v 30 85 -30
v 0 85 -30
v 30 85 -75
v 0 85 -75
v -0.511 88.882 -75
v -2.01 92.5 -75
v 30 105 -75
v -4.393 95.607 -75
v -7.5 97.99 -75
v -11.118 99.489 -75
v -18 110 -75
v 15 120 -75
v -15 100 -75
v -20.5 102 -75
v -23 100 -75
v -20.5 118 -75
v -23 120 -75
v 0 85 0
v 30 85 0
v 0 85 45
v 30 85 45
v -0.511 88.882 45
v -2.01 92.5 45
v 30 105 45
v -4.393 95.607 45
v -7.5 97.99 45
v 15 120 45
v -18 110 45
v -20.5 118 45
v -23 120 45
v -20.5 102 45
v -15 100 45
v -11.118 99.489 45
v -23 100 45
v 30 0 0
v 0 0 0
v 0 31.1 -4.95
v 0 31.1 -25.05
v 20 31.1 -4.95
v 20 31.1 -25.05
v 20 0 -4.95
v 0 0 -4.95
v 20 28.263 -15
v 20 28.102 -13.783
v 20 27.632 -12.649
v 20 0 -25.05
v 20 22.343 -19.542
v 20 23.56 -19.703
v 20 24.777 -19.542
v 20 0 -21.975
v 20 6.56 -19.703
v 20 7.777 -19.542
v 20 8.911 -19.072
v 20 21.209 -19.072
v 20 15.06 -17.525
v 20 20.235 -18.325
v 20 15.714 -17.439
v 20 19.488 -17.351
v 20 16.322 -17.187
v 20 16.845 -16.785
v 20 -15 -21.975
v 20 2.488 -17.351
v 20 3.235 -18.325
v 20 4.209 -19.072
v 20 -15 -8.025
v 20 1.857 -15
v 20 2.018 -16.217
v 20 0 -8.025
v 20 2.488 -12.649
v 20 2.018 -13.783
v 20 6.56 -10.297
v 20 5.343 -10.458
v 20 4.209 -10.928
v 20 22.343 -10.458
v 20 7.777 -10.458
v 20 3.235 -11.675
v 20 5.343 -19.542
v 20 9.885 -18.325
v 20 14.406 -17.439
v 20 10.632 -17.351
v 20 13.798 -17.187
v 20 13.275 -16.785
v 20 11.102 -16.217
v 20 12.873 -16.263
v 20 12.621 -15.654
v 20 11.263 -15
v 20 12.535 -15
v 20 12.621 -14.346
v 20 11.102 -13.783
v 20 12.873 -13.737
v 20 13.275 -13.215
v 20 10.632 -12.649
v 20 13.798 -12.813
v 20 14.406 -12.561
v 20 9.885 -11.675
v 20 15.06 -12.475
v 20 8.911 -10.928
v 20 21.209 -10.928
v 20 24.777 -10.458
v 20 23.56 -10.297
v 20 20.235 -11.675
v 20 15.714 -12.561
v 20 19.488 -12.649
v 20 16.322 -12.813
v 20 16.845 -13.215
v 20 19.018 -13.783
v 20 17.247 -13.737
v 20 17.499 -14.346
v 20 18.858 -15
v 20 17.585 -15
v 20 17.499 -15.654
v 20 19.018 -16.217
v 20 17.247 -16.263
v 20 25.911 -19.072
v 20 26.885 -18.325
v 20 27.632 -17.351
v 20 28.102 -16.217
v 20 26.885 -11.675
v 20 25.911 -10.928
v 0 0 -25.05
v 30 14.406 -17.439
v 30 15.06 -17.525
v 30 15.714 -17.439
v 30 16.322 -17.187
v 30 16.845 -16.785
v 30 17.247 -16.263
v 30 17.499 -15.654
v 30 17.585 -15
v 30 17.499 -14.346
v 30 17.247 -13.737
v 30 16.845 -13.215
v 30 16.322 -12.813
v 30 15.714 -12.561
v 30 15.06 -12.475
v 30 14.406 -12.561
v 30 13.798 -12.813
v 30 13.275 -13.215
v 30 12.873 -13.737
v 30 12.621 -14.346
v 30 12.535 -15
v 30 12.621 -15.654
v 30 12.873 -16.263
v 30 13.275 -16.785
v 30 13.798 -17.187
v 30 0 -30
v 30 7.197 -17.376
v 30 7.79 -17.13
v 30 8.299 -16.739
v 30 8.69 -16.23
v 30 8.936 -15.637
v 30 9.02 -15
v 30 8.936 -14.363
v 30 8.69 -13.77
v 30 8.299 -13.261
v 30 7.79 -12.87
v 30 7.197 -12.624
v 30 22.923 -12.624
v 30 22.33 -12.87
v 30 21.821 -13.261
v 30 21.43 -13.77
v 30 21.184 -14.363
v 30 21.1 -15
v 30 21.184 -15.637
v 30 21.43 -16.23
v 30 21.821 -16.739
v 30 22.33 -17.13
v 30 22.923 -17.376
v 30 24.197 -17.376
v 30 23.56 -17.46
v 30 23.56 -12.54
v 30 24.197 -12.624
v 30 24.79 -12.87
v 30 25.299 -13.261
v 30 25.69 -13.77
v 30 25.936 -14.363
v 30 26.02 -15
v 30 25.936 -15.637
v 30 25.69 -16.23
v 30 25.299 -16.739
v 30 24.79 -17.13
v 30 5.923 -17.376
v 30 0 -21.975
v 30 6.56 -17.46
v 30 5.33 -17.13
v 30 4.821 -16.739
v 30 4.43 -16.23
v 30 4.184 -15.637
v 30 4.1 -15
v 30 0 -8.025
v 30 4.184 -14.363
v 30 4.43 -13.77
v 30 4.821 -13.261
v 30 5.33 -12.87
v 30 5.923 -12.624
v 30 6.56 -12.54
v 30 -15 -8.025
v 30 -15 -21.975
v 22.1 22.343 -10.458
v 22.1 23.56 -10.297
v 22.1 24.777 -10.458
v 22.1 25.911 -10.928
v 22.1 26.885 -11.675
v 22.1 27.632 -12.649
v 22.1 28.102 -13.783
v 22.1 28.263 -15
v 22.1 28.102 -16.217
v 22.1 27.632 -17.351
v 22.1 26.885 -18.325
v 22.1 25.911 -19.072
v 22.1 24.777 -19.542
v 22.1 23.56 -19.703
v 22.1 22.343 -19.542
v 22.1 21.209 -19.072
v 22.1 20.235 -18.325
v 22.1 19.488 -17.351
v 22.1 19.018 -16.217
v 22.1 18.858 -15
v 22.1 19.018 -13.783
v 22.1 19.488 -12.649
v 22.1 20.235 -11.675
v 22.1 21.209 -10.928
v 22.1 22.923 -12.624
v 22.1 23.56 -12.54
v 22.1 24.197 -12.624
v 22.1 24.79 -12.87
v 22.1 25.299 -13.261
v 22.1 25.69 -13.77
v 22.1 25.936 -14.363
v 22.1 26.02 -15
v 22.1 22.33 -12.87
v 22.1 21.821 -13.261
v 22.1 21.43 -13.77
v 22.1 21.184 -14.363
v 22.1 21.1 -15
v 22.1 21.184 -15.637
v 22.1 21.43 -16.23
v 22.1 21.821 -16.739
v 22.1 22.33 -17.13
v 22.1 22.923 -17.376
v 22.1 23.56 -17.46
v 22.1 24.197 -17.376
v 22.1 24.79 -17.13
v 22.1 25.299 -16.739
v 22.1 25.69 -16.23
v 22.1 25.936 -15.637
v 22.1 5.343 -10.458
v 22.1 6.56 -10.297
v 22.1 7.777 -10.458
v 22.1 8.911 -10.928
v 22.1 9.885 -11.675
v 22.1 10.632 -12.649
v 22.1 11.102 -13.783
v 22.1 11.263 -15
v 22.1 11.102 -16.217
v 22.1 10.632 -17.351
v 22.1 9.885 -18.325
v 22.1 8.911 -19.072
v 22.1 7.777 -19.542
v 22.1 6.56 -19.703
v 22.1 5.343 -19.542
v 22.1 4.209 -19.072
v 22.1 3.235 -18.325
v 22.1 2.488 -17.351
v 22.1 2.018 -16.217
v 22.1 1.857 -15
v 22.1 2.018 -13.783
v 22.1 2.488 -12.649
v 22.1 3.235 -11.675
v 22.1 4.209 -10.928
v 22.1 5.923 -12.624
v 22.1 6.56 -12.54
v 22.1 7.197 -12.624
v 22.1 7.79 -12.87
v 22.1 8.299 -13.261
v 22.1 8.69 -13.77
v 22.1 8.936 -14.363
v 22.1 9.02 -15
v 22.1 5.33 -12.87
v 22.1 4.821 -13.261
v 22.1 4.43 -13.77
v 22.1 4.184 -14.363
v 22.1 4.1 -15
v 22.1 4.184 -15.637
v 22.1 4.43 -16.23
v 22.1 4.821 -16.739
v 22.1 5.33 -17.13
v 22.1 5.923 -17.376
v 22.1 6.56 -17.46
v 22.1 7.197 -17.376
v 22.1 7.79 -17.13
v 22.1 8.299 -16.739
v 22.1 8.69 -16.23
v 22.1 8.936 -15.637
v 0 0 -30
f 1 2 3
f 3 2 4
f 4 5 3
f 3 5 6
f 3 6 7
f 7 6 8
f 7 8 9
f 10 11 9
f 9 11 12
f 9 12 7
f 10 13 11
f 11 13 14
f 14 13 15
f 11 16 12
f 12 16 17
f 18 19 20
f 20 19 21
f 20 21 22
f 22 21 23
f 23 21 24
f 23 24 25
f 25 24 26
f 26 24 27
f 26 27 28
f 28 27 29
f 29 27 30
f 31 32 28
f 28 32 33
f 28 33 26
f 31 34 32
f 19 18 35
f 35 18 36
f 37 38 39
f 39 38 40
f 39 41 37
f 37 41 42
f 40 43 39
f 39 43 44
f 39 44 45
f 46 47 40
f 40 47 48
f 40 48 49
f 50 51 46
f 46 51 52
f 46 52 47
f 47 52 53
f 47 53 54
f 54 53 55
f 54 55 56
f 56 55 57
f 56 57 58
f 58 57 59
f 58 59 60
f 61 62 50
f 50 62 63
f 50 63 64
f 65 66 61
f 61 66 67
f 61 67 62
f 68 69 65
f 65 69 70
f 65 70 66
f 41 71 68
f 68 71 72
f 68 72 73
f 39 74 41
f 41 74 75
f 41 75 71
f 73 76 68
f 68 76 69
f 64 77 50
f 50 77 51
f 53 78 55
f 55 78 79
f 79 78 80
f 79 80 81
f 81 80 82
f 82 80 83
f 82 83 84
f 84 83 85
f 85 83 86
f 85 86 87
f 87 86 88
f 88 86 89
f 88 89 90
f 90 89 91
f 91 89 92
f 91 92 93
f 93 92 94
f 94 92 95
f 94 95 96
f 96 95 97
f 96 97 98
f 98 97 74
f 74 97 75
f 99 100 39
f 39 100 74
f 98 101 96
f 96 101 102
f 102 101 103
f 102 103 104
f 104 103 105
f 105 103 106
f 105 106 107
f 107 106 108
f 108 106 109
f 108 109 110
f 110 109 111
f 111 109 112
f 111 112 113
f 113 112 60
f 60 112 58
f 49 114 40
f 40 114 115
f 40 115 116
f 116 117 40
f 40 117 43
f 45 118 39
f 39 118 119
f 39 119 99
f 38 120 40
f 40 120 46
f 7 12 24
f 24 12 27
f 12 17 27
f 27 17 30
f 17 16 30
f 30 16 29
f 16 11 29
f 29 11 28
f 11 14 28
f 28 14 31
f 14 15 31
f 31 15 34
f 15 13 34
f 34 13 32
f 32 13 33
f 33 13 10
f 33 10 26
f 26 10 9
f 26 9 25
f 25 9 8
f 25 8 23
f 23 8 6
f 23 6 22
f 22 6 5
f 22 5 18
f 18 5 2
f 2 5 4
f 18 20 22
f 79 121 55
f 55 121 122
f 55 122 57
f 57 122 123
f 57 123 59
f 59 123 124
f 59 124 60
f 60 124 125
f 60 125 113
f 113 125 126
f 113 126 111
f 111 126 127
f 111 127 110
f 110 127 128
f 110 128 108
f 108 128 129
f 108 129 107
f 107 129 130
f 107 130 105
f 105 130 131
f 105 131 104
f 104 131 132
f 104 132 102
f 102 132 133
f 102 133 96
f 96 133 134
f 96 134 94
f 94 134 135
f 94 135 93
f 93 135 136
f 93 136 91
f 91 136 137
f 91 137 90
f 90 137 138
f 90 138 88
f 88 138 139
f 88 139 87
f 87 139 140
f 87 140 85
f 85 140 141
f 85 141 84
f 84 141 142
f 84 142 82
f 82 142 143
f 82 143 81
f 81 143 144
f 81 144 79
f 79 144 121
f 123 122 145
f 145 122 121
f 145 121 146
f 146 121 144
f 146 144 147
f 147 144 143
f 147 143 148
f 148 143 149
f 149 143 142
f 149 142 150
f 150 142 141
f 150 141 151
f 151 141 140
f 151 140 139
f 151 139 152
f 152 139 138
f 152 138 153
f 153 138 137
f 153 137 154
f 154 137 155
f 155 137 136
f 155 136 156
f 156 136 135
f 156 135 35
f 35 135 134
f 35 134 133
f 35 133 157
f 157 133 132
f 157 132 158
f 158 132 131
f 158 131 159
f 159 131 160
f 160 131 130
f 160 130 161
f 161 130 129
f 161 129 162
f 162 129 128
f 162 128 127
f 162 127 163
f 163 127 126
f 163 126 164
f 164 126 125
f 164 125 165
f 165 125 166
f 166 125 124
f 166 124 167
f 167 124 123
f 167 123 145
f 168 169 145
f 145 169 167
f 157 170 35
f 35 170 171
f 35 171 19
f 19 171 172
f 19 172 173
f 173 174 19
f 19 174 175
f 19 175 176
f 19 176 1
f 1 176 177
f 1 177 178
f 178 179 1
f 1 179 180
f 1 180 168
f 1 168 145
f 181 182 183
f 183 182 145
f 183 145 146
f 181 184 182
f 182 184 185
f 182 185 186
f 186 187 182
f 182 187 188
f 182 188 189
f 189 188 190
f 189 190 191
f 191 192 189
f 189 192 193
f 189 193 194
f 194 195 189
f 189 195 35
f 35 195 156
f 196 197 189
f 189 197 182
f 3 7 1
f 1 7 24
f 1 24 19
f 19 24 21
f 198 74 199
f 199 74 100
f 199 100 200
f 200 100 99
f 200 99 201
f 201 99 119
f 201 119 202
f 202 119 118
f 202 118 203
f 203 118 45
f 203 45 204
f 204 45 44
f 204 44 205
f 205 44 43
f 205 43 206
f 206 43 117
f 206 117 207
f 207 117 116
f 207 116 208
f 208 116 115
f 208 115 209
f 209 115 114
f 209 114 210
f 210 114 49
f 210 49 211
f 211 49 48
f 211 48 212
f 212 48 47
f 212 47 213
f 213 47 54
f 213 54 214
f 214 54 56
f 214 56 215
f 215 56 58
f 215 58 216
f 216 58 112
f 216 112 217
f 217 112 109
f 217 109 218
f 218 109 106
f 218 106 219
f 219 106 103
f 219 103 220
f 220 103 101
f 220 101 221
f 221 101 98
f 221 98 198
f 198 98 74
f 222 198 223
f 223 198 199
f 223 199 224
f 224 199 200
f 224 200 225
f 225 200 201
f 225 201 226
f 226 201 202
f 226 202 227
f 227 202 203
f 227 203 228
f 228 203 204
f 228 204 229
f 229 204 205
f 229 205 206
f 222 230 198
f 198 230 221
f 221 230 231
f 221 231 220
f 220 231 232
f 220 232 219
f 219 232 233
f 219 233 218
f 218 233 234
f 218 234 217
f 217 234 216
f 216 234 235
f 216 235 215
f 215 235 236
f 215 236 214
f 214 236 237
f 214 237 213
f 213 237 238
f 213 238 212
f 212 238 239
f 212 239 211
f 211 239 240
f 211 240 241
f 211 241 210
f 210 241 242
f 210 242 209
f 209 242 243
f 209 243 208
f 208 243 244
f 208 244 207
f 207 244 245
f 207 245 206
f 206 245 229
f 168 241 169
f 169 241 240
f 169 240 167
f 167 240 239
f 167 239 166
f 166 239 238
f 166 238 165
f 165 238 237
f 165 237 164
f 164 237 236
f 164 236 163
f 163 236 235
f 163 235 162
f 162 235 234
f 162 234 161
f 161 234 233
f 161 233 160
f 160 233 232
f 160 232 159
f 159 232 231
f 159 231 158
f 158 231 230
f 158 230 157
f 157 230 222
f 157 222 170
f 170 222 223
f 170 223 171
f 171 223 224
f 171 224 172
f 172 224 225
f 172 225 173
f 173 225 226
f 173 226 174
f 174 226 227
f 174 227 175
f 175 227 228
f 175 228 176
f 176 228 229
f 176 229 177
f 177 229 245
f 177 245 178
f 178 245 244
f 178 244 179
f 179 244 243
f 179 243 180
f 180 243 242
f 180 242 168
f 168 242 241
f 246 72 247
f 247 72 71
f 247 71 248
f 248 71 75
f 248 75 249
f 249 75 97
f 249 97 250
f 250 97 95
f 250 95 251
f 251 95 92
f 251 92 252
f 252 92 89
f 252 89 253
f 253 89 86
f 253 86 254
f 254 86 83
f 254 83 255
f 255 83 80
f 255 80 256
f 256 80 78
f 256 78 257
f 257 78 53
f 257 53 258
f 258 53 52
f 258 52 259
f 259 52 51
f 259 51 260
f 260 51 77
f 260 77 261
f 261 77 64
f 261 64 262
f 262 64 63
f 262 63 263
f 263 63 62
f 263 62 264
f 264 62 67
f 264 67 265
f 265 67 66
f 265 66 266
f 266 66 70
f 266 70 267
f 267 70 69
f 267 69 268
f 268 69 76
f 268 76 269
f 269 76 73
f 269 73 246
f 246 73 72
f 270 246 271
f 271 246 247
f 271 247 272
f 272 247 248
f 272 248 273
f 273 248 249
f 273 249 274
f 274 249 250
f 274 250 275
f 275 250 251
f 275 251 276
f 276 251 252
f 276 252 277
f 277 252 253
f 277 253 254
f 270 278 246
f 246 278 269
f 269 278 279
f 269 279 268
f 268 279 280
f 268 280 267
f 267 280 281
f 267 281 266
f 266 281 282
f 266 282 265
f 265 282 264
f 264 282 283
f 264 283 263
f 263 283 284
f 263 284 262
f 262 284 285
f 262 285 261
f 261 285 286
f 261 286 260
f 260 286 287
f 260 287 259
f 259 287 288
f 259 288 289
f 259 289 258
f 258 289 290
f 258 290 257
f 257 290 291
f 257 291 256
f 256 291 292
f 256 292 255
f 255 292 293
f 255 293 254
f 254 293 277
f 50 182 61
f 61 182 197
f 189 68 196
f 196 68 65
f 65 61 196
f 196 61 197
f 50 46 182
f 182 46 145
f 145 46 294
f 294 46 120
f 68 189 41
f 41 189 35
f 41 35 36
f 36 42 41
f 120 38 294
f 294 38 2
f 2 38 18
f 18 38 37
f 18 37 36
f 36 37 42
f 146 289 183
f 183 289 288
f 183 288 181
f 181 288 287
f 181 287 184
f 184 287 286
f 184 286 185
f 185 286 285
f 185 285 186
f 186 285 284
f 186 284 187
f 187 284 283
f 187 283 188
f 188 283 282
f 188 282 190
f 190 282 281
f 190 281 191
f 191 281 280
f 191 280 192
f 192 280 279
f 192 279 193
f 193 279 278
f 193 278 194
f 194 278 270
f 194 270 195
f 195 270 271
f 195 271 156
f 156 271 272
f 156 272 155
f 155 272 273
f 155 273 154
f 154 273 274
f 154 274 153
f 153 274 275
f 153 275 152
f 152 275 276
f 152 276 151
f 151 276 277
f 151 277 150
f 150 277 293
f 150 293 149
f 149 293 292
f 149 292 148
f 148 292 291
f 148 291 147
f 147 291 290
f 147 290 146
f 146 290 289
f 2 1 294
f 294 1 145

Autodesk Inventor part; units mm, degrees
ref_plane "YZ Plane" through (0, 0, 0) normal (1, 0, 0) x (0, 1, 0)
ref_plane "XZ Plane" through (0, 0, 0) normal (0, 1, 0) x (-1, 0, 0)
sketch "Sketch1" plane through (0, 0, 0) normal (0, 0, 1) x (1, 0, 0)
  line L0 (0, 0) -> (25, 0)
  line L1 (25, 0) -> (25, 40)
  line L2 (25, 40) -> (0, 40)
  line L3 (0, 40) -> (0, 0)
  dimension "d1" = 25
  dimension "d2" = 40
  dimension "d3" = 25
extrude "Extrusion1" add sketch "Sketch1" against normal blind 30
sketch "Sketch2" plane through (25, 0, 0) normal (1, 0, 0) x (0, 0, -1)
  line L0 (0, 0) -> (30, 0) projected
  circle A0 centre (15, 6.56) radius 2.46
extrude "Extrusion2" cut sketch "Sketch2" against normal blind 30
sketch "Sketch3" plane through (0, 0, 0) normal (-1, 0, 0) x (0, 0, 1)
  line L0 (0, 0) -> (-30, 0) projected
  line L1 (-25.05, 0) -> (-4.95, 0)
  line L2 (-4.95, 0) -> (-4.95, 33.12)
  line L3 (-4.95, 33.12) -> (-25.05, 33.12)
  line L4 (-25.05, 33.12) -> (-25.05, 0)
  dimension "d11" = 20.1
extrude "Extrusion3" cut sketch "Sketch3" against normal blind 20
sketch "Sketch4" plane through (0, 0, 0) normal (0, -1, 0) x (1, 0, 0)
  line L0 (20, -4.95) -> (20, -25.05) projected
  line L1 (20, -15) -> (25, -15)
  line L2 (25, 0) -> (25, -30) projected
  line L3 (20, -8.025) -> (25, -8.025)
  line L4 (25, -8.025) -> (25, -21.975)
  line L5 (25, -21.975) -> (20, -21.975)
  line L6 (20, -21.975) -> (20, -8.025)
  line L7 (20, -8.025) -> (25, -21.975) construction
  line L8 (25, -8.025) -> (20, -21.975) construction
  line L9 (25, -12.54) -> (25, -17.46) projected
  point P0 (0, 0)
  point P1 (22.5, -15)
  dimension "d14" = 13.95
extrude "Extrusion4" add sketch "Sketch4" along normal blind 15
sketch "Sketch5" plane through (20, 0, 0) normal (-1, 0, 0) x (0, 0, 1)
  circle A0 centre (-15, 6.56) radius 2.46 projected
  circle A1 centre (-15, 6.56) radius 4.7025
  circle A2 centre (-15, 6.56) radius 2.46 projected
  circle A3 centre (-15, 6.56) radius 2.46
  point P0 (0, 0)
  dimension "d17" = 9.405
extrude "Extrusion5" cut sketch "Sketch5" against normal blind 2.1
sketch "Sketch6" plane through (25, 0, 0) normal (1, 0, 0) x (0, 0, -1)
  circle A0 centre (15, 6.56) radius 4.7025 projected
  line L0 (15, 6.56) -> (15, 23.56)
  circle A1 centre (15, 23.56) radius 2.46
  point P0 (0, 0)
  dimension "d20" = 17
  dimension "d21" = 4.92
extrude "Extrusion6" cut sketch "Sketch6" against normal blind 10 contours A1
sketch "Sketch7" plane through (20, 0, 0) normal (-1, 0, 0) x (0, 0, 1)
  circle A0 centre (-15, 23.56) radius 2.46 projected
  circle A1 centre (-15, 23.56) radius 4.7025
  point P0 (0, 0)
  dimension "d24" = 9.405
extrude "Extrusion7" cut sketch "Sketch7" against normal blind 2.1
sketch "Sketch9" plane through (25, 0, 0) normal (1, 0, 0) x (0, 0, -1)
  circle A0 centre (15, 6.56) radius 2.46 projected
  circle A1 centre (15, 6.56) radius 2.46
  circle A2 centre (15, 23.56) radius 2.46 projected
  circle A3 centre (15, 23.56) radius 2.46
  line L0 (30, 40) -> (30, 0) projected
  line L1 (30, 0) -> (30, 40)
  line L2 (30, 40) -> (0, 40)
  line L3 (0, 40) -> (0, 0)
  line L4 (0, 0) -> (8.025, 0) projected
  line L5 (21.975, 0) -> (21.975, -15)
  line L6 (21.975, -15) -> (8.025, -15)
  line L7 (8.025, -15) -> (8.025, 0)
  line L8 (0, 0) -> (8.025, 0)
  line L9 (21.975, 0) -> (30, 0)
extrude "Extrusion8" add sketch "Sketch9" along normal blind 5
sketch "Sketch10" plane through (0, 40, 0) normal (0, 1, 0) x (1, 0, 0)
  line L0 (0, 30) -> (30, 30) projected
  line L1 (30, 0) -> (0, 0) projected
  line L2 (0, 30) -> (30, 30)
  line L3 (30, 30) -> (30, 0)
  line L4 (30, 0) -> (0, 0)
  line L5 (0, 0) -> (0, 30)
extrude "Extrusion9" add sketch "Sketch10" along normal blind 30
sketch "Sketch12" plane through (30, 0, 0) normal (1, 0, 0) x (0, 0, -1)
  circle A0 centre (15, 6.56) radius 2.46 projected
  line L0 (15, 6.56) -> (15, 15.06)
  circle A1 centre (15, 15.06) radius 2.525
  point P0 (0, 0)
  dimension "d31" = 8.5
  dimension "d33" = 5.05
extrude "Extrusion10" cut sketch "Sketch12" against normal blind 30 contours A1
sketch "Sketch14" plane through (0, 0, 0) normal (0, 0, 1) x (1, 0, 0)
  line L0 (30, 70) -> (0, 70) projected
  line L1 (0, 70) -> (0, 85)
  line L2 (-15, 100) -> (-23, 100)
  line L3 (30, 0) -> (30, 70) projected
  line L4 (30, 100) -> (30, 70)
  arc A0 (0, 85) -> (-15, 100) centre (-15, 85) ccw
  line L5 (-23, 120) -> (15, 120)
  line L6 (-20.5, 118) -> (-18, 110)
  line L7 (-20.5, 118) -> (-23, 120)
  line L8 (-20.5, 102) -> (-18, 110)
  line L9 (-20.5, 102) -> (-23, 100)
  line L10 (30, 105) -> (15, 120)
  line L11 (30, 105) -> (30, 100)
  point P0 (0, 0)
  point P1 (0, 100)
  dimension "d47" = 30
  dimension "d54" = 15
  dimension "d60" = 20
extrude "Extrusion12" add sketch "Sketch14" against normal blind 30
sketch "Sketch15" plane through (0, 0, -25.05) normal (-1, 0, 0) x (0, 0, 1)
  line L0 (0, 33.12) -> (20.1, 33.12) projected
  line L1 (20.1, 33.12) -> (20.1, 0) projected
  line L2 (0, 33.12) -> (20.1, 33.12)
  line L3 (20.1, 33.12) -> (20.1, 31.1)
  line L4 (20.1, 31.1) -> (0, 31.1)
  line L5 (0, 31.1) -> (0, 33.12)
  point P0 (25.05, 0)
  dimension "d57" = 2.02
extrude "Extrusion13" add sketch "Sketch15" against normal blind 20
sketch "Sketch19" plane through (0, 0, 0) normal (0, 0, 1) x (1, 0, 0)
  arc A0 (0, 85) -> (-15, 100) centre (-15, 85) ccw projected
  arc A1 (0, 85) -> (-15, 100) centre (-15, 85) ccw
  line L0 (-15, 100) -> (-23, 100) projected
  line L1 (-15, 100) -> (-23, 100)
  line L2 (-23, 100) -> (-20.5, 102) projected
  line L3 (-23, 100) -> (-20.5, 102)
  line L4 (-20.5, 102) -> (-18, 110) projected
  line L5 (-20.5, 102) -> (-18, 110)
  line L6 (-18, 110) -> (-20.5, 118) projected
  line L7 (-18, 110) -> (-20.5, 118)
  line L8 (-23, 120) -> (15, 120) projected
  line L9 (-20.5, 118) -> (-23, 120)
  line L10 (-23, 120) -> (15, 120)
  line L11 (15, 120) -> (30, 105) projected
  line L12 (15, 120) -> (30, 105)
  line L13 (30, 105) -> (30, 85)
  line L14 (30, 0) -> (30, 105) projected
  line L15 (0, 85) -> (30, 85)
  point P0 (0, 0)
extrude "Extrusion14" add sketch "Sketch19" along normal blind 45
ref_plane "Work Plane1" through (0, 0, -15) normal (0, 0, 1) x (1, 0, 0)
mirror "Mirror1" about plane through (0, 0, -15) normal (0, 0, 1) of "Extrusion14"
properties part number "16mm_x_120mm"
